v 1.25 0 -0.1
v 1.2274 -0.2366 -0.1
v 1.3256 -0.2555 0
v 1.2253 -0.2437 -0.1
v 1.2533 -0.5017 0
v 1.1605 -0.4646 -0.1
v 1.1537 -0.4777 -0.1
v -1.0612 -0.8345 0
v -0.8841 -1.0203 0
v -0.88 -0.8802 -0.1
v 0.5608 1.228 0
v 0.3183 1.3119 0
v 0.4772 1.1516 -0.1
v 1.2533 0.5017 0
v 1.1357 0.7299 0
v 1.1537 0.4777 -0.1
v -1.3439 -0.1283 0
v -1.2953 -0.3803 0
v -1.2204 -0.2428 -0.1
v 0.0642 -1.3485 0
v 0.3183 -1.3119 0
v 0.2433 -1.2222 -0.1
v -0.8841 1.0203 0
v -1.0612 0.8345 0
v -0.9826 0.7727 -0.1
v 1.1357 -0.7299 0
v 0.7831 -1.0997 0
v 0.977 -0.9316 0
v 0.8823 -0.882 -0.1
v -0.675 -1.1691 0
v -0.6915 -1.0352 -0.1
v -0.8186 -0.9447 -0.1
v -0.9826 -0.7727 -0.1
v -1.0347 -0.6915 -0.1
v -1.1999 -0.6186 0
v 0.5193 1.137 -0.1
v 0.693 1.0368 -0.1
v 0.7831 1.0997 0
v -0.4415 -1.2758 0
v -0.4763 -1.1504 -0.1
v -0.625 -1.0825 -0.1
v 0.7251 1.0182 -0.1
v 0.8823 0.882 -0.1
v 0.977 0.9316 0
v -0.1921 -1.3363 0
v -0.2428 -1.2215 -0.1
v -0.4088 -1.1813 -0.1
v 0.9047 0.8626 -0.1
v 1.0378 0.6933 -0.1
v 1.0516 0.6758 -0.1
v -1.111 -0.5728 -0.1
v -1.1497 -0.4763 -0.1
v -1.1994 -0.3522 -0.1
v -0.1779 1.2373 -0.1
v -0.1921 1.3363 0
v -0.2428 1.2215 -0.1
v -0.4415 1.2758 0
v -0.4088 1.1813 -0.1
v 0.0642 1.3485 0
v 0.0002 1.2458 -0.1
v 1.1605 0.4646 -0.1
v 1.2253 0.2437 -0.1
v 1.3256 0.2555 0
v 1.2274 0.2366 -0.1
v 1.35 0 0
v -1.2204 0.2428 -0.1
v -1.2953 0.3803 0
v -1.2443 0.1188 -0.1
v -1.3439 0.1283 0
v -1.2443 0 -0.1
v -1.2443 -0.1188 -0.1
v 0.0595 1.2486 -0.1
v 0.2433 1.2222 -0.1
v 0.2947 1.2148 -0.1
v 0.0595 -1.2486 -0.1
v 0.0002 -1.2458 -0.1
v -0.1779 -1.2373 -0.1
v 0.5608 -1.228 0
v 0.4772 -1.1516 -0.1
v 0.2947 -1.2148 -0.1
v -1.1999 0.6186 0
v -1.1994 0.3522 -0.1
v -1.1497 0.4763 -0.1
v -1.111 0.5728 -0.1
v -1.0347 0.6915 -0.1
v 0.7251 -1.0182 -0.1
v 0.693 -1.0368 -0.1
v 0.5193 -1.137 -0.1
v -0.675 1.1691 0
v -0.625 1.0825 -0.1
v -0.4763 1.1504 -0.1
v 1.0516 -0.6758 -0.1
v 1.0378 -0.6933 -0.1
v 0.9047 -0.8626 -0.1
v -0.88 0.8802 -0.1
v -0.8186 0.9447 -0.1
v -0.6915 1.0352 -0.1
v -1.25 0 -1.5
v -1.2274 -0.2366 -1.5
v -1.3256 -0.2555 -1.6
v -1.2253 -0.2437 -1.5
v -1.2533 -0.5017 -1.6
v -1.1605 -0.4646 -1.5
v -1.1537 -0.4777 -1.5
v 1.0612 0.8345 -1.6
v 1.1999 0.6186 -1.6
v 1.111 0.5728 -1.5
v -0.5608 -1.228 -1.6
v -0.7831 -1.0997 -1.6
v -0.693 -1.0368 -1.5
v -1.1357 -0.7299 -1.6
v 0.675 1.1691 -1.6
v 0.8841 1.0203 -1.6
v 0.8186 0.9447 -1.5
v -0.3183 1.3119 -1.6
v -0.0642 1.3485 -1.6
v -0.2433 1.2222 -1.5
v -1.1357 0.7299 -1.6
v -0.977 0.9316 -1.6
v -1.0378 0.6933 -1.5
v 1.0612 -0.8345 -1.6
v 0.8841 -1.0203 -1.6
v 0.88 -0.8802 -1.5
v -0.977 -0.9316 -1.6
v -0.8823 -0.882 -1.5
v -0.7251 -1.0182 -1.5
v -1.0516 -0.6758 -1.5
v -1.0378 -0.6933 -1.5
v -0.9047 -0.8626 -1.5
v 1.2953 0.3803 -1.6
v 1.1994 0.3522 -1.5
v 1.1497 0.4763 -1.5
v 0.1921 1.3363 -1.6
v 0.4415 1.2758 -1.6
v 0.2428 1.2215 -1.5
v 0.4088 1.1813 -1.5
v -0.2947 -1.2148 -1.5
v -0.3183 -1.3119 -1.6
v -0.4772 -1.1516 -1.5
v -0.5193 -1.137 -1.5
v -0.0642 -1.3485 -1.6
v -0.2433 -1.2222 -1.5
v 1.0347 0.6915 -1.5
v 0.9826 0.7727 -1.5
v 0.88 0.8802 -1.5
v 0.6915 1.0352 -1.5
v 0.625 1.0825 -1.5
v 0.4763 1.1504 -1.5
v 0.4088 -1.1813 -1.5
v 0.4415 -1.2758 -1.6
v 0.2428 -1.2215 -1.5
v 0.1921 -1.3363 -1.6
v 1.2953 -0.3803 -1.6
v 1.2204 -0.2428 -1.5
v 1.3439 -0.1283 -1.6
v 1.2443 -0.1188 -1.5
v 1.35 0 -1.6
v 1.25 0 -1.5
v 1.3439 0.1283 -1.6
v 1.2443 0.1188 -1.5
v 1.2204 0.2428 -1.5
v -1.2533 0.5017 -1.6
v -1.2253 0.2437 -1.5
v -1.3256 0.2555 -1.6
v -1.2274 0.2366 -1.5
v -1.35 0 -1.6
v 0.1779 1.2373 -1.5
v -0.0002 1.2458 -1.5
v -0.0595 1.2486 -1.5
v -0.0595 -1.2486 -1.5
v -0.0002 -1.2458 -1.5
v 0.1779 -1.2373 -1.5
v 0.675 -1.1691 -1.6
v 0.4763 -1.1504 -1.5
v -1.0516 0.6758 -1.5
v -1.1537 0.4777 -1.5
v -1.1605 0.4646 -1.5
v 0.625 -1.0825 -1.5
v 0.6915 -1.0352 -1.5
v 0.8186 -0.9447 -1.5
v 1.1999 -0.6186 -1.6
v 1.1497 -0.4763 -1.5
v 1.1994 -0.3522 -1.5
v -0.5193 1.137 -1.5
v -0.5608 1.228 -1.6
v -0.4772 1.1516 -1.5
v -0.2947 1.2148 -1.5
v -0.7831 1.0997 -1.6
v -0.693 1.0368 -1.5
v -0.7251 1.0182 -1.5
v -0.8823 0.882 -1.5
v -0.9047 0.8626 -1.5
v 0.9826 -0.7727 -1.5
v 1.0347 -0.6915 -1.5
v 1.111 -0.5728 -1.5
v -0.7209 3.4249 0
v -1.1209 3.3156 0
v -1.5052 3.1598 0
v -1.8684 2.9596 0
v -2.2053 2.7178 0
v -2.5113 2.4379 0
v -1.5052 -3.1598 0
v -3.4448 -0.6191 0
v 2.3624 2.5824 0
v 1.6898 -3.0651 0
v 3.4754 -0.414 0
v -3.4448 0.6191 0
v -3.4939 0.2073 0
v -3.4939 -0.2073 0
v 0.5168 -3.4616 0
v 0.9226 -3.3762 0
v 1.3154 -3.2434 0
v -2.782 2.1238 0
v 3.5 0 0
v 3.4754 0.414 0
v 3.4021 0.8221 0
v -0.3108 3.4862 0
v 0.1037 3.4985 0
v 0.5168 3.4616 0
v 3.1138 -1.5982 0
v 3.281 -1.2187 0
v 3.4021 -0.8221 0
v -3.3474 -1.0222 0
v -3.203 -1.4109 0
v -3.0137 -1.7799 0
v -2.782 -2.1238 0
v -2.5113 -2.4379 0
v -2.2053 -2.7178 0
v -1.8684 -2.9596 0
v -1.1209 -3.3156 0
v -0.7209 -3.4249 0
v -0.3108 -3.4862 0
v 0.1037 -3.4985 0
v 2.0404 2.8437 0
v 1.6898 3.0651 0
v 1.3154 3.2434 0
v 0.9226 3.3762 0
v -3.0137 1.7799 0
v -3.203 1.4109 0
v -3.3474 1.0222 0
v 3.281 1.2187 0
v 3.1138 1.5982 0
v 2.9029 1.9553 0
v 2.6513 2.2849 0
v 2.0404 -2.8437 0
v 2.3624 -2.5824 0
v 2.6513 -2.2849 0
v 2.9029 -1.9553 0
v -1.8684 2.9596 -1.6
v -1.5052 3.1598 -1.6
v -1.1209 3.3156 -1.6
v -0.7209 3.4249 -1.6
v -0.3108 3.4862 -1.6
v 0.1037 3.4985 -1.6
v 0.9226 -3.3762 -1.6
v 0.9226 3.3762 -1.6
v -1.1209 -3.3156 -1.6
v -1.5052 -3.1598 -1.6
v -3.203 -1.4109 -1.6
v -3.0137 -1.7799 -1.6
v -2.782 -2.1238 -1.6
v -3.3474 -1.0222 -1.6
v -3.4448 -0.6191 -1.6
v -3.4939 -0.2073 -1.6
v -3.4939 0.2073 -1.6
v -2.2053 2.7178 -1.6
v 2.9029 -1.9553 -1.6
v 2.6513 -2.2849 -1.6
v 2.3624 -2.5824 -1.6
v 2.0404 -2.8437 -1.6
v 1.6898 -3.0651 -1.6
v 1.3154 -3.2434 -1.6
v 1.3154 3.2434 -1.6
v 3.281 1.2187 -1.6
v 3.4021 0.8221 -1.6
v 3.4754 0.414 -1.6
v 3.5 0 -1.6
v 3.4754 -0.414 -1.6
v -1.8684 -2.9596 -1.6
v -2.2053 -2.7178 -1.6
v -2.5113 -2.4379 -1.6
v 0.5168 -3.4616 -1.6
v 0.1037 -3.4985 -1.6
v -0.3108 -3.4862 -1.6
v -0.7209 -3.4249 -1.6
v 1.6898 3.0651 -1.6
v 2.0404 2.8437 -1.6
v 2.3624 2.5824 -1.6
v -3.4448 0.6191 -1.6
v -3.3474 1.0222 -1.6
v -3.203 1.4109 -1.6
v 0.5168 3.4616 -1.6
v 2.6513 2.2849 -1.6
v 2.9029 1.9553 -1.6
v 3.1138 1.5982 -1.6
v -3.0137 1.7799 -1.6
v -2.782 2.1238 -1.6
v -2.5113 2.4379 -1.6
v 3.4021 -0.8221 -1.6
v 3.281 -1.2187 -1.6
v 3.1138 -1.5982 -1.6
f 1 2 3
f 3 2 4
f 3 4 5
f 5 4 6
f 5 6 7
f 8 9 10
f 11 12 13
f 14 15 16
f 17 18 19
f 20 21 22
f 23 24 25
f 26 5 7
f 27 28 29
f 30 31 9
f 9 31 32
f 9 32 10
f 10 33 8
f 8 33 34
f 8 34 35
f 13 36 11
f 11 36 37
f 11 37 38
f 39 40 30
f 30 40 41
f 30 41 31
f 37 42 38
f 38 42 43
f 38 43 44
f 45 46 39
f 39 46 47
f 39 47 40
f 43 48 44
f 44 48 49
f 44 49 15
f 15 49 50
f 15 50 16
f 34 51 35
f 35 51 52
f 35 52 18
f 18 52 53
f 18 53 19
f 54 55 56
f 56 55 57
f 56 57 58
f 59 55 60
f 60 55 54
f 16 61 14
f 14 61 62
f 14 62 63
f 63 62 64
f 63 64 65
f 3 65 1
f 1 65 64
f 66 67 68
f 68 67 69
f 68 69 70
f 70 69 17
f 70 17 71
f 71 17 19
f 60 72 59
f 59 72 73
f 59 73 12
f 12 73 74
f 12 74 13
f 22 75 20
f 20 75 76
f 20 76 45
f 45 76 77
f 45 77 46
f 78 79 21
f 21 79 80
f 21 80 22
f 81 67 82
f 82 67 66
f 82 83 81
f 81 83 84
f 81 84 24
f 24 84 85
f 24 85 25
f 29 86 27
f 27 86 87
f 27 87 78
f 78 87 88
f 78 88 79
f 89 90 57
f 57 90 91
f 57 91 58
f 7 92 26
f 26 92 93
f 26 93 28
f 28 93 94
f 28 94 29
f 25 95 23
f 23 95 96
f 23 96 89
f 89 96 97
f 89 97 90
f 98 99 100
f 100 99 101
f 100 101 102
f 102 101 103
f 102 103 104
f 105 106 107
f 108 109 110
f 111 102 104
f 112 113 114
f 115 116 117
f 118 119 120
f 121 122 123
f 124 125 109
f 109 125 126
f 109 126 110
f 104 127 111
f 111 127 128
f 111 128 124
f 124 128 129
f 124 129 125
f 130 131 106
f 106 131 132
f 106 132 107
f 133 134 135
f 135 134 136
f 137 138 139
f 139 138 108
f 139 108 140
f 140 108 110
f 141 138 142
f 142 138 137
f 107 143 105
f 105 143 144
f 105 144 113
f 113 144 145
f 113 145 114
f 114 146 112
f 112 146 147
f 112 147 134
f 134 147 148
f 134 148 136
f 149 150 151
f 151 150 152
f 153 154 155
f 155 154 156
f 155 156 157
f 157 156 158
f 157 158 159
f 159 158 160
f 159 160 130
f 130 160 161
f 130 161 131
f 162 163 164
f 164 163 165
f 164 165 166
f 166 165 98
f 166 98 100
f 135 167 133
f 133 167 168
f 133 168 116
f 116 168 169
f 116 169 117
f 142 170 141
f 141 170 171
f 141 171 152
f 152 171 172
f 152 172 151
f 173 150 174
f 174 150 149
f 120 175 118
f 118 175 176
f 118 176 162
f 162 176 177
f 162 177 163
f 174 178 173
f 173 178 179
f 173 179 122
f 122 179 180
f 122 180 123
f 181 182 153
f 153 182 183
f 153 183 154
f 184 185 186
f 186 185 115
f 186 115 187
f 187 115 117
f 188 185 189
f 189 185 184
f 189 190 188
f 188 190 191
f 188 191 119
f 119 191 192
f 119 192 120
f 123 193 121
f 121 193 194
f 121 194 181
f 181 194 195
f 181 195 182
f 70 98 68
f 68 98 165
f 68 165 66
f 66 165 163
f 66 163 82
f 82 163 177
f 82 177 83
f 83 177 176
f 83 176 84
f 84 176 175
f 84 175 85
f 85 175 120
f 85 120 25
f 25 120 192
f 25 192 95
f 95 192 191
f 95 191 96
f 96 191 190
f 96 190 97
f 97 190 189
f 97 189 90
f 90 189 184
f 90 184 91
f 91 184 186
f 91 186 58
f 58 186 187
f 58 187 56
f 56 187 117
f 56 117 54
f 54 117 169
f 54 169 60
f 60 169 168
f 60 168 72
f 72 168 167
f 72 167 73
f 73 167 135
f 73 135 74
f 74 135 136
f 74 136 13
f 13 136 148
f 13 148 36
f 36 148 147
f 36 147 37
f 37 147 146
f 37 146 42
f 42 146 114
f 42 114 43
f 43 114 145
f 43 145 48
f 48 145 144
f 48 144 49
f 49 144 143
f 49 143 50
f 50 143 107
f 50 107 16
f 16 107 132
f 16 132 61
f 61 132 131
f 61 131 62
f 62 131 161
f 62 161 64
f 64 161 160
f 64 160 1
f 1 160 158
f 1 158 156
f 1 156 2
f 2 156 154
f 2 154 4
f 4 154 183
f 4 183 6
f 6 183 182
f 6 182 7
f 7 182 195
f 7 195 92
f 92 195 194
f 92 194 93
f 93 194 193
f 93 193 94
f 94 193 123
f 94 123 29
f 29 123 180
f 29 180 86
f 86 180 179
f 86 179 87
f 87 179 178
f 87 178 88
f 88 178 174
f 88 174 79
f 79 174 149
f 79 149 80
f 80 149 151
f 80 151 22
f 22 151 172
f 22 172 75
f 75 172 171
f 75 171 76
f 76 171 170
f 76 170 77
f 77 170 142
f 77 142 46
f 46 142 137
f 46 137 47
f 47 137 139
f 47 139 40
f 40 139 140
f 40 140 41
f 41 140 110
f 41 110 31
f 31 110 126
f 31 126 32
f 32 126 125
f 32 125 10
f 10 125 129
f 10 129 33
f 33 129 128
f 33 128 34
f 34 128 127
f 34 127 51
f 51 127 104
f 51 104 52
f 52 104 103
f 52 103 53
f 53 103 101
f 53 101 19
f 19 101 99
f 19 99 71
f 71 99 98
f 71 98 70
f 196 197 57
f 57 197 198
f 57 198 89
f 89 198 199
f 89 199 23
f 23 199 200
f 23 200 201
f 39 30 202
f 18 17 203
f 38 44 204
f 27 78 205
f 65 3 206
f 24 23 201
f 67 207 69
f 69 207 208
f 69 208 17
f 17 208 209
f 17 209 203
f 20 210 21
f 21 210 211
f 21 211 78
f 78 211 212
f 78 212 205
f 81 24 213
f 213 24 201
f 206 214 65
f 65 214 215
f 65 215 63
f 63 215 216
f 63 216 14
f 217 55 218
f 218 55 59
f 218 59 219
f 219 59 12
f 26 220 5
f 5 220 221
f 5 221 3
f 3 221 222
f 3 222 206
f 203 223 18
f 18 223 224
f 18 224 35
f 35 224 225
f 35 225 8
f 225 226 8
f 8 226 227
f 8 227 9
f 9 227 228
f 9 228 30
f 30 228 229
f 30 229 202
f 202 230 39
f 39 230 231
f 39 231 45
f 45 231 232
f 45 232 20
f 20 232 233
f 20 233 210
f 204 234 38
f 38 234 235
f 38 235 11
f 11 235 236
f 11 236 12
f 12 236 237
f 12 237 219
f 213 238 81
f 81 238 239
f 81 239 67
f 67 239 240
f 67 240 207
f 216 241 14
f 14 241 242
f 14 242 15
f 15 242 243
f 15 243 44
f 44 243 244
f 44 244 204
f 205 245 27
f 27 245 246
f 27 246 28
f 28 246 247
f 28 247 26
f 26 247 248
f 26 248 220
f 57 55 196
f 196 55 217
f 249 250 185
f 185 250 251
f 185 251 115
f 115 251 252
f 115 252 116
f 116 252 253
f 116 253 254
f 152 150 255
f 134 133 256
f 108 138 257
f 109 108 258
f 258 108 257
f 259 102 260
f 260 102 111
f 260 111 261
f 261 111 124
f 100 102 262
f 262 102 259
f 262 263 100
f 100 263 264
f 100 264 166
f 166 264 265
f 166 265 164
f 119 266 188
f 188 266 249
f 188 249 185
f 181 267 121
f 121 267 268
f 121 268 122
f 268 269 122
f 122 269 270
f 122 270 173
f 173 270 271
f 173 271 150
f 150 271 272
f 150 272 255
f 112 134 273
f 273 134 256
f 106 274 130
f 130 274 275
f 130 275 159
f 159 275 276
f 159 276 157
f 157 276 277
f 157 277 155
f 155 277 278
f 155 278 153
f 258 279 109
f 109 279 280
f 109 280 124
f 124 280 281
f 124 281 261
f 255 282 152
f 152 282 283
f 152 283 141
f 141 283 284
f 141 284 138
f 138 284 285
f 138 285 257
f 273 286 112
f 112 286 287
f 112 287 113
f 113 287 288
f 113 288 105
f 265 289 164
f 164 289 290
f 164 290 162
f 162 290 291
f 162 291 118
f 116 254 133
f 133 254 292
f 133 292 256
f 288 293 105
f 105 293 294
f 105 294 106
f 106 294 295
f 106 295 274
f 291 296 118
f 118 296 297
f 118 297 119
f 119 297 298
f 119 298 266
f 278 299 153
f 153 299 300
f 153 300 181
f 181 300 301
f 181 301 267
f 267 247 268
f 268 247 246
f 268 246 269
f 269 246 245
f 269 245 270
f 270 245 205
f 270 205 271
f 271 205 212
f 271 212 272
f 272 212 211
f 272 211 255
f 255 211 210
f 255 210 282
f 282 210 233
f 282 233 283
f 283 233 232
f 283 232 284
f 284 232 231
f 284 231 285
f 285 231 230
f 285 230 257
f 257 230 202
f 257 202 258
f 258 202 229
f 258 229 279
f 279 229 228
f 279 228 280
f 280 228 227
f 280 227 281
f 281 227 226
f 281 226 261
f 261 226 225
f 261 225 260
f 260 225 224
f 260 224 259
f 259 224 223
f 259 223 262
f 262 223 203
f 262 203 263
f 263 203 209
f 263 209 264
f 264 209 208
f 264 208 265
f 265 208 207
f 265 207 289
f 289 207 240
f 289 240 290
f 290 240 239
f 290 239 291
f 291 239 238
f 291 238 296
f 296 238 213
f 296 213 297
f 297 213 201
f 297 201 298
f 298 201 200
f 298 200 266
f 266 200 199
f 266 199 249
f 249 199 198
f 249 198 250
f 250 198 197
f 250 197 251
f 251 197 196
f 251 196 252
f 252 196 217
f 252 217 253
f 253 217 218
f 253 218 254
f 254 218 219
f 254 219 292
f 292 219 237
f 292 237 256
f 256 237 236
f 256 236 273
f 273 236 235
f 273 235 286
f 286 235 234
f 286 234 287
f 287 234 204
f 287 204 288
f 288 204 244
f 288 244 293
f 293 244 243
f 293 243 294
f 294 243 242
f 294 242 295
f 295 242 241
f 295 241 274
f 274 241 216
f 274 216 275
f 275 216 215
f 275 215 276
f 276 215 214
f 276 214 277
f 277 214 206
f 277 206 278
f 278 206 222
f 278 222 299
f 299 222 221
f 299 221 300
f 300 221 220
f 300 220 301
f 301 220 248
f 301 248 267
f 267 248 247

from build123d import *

# Parameters (mm, degrees)
SKETCH1_R           = 3.5
BOSS_EXTRUDE1_DEPTH = 1.6
SKETCH2_R           = 1.25
CUT_EXTRUDE1_DEPTH  = 2.6
CHAMFER1_SIZE       = 0.1


with BuildPart() as part:
    # Sketch1 → Boss-Extrude1 (new body)
    with BuildSketch(Plane.XY):
        Circle(SKETCH1_R)
    extrude(amount=-BOSS_EXTRUDE1_DEPTH)

    # Sketch2 → Cut-Extrude1 (cut, through all)
    with BuildSketch(Plane.XY):
        Circle(SKETCH2_R)
    extrude(amount=-CUT_EXTRUDE1_DEPTH, mode=Mode.SUBTRACT)

    # Chamfer1
    chamfer1_edges = [part.edges().sort_by_distance(p)[0] for p in [
        (-1.25, 0, -1.6),
        (-1.25, 0, 0),
    ]]
    chamfer(chamfer1_edges, length=CHAMFER1_SIZE)


solid = part.part
